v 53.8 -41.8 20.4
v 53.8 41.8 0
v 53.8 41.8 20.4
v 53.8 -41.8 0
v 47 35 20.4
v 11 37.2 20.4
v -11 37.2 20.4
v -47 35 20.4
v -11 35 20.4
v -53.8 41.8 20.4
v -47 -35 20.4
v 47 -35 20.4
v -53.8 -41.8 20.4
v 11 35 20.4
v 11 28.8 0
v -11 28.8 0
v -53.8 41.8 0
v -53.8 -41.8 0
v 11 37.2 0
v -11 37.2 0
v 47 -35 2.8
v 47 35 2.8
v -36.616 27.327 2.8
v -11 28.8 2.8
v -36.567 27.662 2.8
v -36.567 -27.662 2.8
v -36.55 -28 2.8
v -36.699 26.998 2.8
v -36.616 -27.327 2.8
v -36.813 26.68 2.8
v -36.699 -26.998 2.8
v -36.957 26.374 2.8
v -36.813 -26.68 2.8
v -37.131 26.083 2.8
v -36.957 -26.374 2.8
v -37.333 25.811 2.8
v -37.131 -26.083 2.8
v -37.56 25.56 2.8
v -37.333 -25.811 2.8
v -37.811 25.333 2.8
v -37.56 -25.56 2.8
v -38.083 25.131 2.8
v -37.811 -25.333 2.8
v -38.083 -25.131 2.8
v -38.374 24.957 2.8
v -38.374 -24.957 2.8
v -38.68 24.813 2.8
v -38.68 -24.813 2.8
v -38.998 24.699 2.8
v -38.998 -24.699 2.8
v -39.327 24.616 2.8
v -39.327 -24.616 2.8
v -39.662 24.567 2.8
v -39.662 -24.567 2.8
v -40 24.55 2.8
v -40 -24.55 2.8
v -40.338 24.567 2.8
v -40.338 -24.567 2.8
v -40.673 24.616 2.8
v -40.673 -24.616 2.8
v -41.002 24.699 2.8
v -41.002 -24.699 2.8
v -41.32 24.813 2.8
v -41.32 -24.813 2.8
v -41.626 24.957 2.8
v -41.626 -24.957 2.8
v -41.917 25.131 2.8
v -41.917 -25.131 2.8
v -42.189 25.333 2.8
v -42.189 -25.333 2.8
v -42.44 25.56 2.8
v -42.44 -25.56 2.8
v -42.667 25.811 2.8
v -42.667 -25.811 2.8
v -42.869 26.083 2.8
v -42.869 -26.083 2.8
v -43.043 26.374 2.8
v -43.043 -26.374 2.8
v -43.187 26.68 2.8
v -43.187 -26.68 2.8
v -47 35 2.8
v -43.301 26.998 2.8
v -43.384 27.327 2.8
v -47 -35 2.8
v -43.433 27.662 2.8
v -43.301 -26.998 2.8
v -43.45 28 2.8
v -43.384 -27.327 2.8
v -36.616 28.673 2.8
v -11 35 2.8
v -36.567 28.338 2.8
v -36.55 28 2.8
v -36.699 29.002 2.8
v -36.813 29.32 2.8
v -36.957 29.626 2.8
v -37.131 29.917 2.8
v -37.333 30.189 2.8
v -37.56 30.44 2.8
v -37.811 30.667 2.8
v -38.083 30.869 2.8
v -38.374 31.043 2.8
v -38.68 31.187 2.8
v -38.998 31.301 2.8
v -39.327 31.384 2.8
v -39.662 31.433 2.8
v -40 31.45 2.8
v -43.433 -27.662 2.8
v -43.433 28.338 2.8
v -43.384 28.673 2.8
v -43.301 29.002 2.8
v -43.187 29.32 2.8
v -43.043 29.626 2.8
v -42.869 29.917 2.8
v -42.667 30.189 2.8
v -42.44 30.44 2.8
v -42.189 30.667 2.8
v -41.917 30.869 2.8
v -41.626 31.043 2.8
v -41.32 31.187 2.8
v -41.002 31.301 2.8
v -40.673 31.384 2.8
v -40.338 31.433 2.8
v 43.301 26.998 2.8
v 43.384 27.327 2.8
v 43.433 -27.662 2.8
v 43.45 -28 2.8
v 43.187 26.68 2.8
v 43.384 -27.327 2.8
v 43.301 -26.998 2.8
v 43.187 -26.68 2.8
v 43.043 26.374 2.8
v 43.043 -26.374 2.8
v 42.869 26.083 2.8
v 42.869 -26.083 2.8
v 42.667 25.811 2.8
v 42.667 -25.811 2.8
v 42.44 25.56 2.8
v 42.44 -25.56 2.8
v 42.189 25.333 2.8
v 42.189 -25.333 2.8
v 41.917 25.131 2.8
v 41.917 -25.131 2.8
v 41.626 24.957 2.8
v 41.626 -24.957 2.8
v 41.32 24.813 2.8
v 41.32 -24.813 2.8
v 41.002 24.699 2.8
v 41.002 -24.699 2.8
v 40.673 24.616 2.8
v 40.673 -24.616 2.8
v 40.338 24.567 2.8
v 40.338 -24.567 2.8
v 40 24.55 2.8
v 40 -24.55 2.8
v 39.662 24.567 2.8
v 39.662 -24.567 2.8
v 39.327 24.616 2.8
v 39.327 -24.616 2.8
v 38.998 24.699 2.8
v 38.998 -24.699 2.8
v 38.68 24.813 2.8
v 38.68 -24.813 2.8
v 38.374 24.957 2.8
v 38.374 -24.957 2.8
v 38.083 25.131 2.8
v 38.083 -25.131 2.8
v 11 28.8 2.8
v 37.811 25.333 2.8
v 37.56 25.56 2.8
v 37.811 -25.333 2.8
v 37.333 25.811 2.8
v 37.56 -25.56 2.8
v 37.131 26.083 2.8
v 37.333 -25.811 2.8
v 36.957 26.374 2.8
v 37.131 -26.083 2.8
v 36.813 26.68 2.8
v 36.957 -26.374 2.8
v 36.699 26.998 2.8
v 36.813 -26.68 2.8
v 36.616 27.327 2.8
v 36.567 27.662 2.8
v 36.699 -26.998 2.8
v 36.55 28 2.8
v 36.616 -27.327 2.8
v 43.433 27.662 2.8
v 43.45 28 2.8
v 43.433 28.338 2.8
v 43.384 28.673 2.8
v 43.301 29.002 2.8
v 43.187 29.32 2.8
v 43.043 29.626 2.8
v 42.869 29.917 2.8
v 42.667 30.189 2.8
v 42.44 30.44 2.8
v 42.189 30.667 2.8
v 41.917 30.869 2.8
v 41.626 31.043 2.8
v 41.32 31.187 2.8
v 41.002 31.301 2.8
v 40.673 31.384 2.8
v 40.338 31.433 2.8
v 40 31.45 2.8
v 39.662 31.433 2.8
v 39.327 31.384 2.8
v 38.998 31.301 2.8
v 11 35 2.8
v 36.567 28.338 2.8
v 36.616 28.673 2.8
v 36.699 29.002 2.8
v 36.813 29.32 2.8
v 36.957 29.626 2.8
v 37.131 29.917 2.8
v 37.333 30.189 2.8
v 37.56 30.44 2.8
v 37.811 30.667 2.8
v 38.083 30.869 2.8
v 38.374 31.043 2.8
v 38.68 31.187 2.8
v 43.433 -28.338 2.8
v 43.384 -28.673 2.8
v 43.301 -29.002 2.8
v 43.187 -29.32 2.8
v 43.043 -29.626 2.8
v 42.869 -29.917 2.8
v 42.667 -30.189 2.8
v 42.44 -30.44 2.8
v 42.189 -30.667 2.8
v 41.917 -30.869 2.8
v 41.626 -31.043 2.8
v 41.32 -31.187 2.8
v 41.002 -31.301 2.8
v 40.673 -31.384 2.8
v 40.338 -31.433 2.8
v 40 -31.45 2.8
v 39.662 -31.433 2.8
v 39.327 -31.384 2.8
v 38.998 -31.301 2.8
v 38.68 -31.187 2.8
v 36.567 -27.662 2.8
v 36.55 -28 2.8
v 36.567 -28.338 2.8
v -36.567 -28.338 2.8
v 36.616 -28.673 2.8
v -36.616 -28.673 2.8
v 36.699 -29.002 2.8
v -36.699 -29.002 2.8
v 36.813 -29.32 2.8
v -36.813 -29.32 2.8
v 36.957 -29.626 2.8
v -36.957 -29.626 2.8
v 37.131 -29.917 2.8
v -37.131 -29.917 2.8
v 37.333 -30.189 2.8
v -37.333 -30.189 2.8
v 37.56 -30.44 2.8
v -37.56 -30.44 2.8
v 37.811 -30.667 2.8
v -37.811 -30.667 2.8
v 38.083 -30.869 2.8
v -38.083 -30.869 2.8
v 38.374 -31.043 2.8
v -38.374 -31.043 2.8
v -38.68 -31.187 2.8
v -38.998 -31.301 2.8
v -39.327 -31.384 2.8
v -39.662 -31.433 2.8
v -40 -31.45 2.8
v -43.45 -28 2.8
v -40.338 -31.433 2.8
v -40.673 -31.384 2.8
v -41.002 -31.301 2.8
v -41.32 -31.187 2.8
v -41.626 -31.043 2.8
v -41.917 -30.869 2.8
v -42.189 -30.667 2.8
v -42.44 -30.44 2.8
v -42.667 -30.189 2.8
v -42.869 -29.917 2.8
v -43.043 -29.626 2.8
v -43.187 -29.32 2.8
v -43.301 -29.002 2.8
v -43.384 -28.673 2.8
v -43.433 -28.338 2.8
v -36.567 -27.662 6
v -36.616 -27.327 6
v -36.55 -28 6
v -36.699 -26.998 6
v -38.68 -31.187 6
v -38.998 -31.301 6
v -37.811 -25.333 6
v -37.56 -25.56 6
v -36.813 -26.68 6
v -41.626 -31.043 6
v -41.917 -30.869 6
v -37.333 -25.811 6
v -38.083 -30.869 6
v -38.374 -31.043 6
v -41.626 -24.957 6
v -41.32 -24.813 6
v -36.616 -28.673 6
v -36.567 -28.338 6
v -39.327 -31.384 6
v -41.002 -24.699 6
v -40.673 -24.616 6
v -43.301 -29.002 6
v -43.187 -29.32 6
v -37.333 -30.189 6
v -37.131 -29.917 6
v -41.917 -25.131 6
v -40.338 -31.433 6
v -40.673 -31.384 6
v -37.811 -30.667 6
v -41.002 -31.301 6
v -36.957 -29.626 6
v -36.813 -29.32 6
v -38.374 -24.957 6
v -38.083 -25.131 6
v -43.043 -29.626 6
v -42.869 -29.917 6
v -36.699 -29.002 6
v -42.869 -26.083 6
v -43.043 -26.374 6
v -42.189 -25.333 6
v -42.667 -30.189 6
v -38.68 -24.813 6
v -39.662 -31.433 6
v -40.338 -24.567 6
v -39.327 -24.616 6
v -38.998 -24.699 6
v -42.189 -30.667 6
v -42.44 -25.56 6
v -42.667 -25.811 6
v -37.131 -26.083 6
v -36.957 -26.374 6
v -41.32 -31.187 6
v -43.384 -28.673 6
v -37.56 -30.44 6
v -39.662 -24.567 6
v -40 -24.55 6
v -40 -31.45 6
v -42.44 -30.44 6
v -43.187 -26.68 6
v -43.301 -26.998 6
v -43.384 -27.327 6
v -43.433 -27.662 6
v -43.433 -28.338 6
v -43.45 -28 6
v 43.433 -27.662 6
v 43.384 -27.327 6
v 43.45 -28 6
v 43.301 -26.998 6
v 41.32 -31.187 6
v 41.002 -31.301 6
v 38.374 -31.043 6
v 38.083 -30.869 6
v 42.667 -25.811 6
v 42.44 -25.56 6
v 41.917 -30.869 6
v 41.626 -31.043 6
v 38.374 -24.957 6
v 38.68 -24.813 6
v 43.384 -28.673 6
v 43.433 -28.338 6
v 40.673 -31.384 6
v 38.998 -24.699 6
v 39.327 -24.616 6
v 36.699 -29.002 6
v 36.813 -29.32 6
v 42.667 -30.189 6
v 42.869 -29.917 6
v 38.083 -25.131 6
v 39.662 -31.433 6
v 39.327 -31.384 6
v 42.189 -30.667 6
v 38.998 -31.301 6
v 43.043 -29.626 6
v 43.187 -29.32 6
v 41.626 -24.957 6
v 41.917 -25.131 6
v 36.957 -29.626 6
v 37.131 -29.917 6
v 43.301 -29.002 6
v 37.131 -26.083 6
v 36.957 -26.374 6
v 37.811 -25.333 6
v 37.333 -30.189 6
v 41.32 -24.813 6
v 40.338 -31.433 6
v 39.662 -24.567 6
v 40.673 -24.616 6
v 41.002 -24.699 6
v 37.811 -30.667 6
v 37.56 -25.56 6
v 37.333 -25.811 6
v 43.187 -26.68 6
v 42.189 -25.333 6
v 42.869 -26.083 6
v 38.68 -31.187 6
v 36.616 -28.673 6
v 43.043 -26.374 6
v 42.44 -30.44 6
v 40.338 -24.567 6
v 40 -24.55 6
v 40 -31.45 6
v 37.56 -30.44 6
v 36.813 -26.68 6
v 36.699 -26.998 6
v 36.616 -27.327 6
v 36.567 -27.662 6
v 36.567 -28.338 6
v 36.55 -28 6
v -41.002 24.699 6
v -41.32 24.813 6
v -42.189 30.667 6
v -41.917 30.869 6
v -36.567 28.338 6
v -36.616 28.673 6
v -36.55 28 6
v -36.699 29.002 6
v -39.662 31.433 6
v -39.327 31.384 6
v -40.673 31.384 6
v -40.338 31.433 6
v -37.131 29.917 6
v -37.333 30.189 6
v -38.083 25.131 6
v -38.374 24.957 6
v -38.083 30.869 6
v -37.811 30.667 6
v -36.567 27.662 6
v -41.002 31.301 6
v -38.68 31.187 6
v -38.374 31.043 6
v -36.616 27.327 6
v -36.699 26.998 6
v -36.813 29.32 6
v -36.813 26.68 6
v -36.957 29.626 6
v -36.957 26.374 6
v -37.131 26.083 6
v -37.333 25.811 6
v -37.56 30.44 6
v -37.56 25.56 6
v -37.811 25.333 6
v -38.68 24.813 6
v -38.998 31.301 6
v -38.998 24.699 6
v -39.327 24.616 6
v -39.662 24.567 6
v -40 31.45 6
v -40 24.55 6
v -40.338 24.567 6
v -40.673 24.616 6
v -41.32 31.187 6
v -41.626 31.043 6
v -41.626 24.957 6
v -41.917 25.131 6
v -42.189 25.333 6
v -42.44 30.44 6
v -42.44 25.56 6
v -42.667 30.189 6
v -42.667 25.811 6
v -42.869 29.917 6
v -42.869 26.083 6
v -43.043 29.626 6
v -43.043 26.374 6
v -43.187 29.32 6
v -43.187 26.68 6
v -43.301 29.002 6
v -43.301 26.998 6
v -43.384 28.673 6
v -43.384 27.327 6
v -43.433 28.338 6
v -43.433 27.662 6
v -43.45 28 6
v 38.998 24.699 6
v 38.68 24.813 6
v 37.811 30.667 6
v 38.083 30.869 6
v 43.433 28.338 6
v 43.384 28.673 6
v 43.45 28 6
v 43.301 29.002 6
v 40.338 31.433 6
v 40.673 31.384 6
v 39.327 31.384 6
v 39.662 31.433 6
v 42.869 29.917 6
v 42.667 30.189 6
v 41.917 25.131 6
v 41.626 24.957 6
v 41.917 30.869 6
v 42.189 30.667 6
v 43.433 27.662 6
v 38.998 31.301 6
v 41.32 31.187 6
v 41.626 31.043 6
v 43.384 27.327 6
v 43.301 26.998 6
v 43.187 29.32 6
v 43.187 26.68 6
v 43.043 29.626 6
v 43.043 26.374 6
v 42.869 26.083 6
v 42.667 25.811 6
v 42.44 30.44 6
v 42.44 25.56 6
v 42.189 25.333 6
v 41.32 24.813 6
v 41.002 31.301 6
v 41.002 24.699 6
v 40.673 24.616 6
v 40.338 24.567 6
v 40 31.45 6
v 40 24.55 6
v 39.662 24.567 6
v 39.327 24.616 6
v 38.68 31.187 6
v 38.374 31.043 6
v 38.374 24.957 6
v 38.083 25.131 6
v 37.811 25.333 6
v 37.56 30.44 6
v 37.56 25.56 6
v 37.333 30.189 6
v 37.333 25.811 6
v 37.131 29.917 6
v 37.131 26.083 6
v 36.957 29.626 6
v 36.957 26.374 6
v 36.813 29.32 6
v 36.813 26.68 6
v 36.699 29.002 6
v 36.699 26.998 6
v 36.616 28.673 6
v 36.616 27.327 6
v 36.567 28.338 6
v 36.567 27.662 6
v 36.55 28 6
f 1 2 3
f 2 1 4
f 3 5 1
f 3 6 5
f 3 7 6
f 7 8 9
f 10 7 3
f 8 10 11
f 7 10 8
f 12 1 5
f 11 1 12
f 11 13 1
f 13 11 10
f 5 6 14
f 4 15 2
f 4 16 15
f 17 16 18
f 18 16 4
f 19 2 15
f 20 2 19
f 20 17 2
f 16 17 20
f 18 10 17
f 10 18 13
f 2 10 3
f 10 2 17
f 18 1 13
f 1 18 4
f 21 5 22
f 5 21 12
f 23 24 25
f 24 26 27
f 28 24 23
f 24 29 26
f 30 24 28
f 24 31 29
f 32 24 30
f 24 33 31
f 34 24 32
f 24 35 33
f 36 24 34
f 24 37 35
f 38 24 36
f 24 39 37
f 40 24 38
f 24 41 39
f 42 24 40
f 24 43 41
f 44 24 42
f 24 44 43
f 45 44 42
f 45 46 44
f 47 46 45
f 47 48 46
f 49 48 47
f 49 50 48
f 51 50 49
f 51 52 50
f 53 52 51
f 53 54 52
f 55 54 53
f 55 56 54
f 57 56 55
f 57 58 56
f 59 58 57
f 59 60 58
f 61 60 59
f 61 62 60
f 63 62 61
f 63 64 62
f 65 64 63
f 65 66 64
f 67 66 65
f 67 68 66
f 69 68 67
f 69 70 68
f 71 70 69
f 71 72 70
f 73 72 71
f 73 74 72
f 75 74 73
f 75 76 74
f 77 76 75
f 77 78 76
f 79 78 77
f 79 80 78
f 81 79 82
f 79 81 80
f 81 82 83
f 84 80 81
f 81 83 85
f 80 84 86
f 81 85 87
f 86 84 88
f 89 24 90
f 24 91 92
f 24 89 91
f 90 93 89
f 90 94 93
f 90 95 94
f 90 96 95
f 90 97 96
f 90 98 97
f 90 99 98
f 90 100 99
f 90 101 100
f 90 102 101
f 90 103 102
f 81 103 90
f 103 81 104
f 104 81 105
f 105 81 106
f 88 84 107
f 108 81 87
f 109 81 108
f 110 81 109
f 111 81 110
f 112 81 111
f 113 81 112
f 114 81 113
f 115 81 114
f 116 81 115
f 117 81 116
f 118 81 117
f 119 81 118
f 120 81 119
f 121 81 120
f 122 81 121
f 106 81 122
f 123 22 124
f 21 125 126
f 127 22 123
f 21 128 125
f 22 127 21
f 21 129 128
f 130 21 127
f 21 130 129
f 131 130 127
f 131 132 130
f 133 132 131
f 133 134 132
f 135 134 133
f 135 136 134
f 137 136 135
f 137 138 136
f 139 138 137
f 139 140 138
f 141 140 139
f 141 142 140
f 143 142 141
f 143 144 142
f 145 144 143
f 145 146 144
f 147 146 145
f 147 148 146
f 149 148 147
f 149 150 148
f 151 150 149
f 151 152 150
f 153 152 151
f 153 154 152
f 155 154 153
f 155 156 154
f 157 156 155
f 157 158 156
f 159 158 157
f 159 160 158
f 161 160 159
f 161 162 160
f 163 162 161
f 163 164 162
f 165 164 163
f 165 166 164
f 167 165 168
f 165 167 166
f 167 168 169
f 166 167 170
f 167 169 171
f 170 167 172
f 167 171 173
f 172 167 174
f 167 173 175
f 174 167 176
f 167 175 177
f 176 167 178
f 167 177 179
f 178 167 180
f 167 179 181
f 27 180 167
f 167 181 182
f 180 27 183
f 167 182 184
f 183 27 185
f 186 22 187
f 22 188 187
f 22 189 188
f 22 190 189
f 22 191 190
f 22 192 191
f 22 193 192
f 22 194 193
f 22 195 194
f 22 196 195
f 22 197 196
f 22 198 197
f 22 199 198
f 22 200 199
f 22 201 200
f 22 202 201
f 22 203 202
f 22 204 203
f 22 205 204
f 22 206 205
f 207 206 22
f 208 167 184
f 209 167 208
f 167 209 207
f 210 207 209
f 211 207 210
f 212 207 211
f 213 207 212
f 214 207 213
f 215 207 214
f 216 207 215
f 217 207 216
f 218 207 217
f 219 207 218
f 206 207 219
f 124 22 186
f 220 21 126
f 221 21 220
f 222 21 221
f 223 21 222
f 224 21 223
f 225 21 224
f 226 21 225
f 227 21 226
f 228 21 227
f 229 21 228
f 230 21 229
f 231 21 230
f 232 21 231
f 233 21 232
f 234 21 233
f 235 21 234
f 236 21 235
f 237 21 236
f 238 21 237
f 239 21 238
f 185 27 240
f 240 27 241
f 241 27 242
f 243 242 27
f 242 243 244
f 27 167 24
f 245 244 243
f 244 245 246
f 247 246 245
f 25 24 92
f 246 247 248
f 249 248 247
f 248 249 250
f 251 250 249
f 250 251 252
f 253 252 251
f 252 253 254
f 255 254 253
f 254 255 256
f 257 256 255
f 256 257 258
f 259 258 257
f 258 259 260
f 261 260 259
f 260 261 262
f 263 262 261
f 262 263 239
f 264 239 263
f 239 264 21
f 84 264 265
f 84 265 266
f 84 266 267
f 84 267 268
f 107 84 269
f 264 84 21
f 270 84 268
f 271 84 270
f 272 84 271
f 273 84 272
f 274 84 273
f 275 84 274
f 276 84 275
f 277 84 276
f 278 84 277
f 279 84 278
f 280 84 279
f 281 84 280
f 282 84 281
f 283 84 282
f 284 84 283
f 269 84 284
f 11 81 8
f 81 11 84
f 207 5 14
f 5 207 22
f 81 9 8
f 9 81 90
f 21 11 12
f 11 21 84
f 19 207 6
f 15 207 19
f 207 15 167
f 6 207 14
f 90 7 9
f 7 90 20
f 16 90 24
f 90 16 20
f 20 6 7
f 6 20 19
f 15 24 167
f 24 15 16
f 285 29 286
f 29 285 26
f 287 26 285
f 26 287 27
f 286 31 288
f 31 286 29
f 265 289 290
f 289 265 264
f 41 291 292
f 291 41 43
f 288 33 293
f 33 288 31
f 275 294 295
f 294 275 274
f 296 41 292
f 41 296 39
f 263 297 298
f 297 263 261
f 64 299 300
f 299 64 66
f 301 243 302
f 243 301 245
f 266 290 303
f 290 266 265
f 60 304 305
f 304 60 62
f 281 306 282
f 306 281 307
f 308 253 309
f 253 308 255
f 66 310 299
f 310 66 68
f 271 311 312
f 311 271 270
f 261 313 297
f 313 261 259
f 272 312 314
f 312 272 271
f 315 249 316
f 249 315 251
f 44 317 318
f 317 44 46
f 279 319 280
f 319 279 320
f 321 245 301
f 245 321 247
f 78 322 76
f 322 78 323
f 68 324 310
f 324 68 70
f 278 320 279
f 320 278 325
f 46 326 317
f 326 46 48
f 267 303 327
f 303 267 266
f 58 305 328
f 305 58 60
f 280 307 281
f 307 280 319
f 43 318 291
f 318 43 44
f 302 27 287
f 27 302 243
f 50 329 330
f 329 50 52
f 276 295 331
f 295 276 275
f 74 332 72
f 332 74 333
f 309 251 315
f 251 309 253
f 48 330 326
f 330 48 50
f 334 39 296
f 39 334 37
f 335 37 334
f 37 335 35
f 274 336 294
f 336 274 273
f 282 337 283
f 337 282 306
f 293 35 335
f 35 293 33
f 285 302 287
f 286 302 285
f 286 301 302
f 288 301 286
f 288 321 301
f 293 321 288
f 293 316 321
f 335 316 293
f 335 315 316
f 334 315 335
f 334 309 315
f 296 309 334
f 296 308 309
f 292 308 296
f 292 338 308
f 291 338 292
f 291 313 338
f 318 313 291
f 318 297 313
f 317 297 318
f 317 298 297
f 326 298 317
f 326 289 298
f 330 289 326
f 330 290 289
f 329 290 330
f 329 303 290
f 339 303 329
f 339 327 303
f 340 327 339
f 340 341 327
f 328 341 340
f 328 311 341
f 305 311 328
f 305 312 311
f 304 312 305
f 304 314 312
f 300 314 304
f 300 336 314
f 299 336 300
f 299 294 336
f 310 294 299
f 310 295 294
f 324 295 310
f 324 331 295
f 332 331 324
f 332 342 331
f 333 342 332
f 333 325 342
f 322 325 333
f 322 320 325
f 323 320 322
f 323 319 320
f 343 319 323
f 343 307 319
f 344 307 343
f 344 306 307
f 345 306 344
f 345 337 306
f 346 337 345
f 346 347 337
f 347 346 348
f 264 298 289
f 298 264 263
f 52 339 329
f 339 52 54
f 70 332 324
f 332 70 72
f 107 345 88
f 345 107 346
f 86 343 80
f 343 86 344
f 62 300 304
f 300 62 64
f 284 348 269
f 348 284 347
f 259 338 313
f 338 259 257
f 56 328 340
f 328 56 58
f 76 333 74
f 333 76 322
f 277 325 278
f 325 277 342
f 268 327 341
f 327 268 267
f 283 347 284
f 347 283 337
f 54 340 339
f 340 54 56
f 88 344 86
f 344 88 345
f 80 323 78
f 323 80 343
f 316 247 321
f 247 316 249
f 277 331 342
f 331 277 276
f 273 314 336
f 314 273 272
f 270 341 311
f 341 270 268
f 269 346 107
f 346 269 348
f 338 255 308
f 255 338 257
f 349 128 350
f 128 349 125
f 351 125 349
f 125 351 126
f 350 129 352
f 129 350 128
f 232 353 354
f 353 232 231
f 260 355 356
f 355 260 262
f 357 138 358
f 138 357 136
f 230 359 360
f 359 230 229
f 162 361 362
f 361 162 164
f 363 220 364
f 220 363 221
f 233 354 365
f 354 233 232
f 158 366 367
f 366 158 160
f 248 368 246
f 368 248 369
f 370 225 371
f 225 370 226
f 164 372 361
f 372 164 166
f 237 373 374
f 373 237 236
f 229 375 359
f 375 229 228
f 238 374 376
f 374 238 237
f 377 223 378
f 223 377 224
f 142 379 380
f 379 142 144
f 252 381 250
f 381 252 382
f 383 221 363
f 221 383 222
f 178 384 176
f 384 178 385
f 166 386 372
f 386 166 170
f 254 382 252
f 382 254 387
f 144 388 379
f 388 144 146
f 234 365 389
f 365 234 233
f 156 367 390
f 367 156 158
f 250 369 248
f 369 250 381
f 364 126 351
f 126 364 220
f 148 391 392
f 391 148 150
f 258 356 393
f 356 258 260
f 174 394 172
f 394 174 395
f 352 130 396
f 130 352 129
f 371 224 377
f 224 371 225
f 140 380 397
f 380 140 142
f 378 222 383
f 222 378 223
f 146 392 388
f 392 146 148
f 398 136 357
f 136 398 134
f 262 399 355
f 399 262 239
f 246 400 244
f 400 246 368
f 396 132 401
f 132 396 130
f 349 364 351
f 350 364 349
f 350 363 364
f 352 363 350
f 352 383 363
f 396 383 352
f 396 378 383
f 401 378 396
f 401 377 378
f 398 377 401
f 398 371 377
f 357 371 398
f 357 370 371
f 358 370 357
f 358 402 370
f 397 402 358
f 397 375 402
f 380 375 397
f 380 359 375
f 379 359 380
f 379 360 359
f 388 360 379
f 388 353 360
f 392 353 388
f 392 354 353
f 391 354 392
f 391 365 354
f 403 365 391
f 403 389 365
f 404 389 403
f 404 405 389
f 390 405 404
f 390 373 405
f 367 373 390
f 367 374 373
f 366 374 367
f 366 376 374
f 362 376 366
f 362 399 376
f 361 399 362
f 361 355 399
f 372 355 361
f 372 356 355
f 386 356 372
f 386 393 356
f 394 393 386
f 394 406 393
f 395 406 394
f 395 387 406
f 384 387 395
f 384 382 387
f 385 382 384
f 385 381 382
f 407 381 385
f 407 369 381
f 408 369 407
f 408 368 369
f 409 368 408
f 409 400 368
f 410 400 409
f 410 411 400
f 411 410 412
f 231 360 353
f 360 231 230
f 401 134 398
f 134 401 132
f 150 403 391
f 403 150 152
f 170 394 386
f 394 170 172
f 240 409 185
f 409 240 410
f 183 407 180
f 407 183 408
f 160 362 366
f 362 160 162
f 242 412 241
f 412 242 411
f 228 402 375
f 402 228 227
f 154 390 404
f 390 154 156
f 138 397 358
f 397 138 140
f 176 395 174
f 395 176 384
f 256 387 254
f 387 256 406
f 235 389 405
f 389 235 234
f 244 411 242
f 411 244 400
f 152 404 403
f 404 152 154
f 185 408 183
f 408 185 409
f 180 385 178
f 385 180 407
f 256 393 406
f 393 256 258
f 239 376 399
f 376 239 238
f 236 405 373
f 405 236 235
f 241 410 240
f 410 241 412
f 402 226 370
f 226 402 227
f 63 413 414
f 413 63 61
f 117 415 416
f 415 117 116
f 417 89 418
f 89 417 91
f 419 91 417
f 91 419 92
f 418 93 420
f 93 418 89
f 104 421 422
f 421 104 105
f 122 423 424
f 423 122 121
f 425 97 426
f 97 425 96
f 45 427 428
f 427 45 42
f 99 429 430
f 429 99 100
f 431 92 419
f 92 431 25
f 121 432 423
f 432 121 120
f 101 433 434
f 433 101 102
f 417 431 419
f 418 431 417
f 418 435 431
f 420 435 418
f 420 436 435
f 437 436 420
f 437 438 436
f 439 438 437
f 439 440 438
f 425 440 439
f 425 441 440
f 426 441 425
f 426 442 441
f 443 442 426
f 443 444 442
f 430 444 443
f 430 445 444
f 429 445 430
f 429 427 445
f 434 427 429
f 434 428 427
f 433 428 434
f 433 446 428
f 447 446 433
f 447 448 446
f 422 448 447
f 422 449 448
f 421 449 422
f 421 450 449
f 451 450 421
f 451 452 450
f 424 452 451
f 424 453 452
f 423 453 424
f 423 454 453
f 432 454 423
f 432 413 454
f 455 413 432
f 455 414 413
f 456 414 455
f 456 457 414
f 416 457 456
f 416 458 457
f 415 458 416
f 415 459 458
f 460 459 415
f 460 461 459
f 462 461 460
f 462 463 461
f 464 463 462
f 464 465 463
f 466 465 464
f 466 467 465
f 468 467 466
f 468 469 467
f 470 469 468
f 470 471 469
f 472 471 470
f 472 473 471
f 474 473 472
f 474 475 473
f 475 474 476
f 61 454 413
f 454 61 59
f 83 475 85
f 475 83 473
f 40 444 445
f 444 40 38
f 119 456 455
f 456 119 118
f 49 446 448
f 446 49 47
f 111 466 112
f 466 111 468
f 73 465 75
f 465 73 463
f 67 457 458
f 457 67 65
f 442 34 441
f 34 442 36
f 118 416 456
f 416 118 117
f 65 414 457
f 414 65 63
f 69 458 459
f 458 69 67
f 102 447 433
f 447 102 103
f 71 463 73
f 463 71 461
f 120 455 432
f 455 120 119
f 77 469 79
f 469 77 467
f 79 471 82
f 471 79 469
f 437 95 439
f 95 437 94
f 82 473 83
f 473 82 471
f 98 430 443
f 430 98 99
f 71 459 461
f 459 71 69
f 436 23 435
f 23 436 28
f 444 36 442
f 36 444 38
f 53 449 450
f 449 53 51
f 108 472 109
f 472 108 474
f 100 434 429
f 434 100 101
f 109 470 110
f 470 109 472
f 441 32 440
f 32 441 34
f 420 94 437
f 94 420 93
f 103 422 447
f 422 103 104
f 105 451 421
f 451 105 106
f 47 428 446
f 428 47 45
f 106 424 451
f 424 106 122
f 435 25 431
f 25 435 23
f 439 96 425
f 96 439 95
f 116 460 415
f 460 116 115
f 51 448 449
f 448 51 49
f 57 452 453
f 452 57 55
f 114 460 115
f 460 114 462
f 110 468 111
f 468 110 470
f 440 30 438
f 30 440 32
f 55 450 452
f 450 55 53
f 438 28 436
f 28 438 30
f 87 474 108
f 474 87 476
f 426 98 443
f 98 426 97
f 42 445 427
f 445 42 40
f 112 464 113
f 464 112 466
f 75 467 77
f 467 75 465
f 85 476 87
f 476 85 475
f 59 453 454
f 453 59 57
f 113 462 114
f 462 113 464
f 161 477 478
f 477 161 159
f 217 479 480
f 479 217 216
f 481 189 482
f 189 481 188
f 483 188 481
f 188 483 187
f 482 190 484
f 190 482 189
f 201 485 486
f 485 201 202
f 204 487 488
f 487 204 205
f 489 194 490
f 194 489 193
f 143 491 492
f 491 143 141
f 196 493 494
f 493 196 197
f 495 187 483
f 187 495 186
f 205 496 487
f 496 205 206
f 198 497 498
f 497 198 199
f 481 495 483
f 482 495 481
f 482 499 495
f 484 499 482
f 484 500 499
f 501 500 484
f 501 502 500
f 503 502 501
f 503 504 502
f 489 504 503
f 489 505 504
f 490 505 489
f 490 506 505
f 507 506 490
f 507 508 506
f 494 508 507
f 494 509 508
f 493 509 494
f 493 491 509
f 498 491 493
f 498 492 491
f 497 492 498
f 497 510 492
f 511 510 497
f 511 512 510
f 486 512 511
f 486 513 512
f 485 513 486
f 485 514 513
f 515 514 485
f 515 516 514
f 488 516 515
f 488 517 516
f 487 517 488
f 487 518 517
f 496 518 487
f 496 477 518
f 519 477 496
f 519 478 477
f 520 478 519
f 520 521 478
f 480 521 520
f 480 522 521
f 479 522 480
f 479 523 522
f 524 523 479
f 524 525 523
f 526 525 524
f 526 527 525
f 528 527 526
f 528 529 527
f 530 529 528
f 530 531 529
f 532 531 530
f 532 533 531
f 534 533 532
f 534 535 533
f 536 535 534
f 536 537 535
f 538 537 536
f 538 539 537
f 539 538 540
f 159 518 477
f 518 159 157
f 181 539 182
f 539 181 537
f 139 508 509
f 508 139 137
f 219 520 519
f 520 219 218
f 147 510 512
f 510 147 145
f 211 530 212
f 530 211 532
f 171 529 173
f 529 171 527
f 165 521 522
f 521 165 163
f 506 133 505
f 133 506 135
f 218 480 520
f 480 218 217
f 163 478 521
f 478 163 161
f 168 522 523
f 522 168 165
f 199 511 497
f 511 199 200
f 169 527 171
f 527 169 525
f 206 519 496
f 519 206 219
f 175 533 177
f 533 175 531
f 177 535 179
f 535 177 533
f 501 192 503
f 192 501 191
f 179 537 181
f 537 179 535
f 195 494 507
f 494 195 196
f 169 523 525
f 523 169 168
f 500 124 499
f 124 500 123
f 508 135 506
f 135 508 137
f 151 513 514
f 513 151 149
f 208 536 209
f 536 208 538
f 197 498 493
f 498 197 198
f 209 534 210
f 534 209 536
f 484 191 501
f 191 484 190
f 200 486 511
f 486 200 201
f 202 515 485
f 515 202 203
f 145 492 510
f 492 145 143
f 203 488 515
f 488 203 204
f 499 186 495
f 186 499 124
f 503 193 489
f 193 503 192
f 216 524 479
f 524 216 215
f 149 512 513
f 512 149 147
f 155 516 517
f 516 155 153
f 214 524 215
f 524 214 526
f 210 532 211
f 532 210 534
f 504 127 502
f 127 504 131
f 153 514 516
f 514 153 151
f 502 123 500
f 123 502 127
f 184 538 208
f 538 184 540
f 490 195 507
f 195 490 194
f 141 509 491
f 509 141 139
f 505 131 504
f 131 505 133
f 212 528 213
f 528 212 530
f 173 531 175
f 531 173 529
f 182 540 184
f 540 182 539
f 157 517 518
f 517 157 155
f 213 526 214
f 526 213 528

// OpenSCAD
// file: 01_kicad_parameters.scad
// KiCad-generated OpenSCAD parameter handoff.
// Source: 01_kicad_mechanical_map.csv and 01_kicad_board.kicad_pcb.
$fn = 64;
board = [94.000, 70.000, 1.600];
enclosure = [107.600, 83.600, 20.400];
wall = 2.800;
lid_clearance = 5.000;

// [reference, kind, x_mm, y_mm, height_mm, keepout_radius_mm, role]
mechanical_features = [
  ["TP1", "POGO_TARGET", -22.000, -12.000, 0.200, 2.500, "access_bore"],
  ["TP2", "POGO_TARGET", -6.000, -12.000, 0.200, 2.500, "access_bore"],
  ["TP3", "POGO_TARGET", 10.000, -12.000, 0.200, 2.500, "access_bore"],
  ["TP4", "POGO_TARGET", 26.000, -12.000, 0.200, 2.500, "access_bore"],
  ["J1", "EDGE_CONN", 0.000, 33.000, 4.400, 11.000, "connector_window"],
  ["MH1", "MOUNTING_HOLE", -40.000, -28.000, 0.000, 1.500, "standoff_axis"],
  ["MH2", "MOUNTING_HOLE", 40.000, -28.000, 0.000, 1.500, "standoff_axis"],
  ["MH3", "MOUNTING_HOLE", -40.000, 28.000, 0.000, 1.500, "standoff_axis"],
  ["MH4", "MOUNTING_HOLE", 40.000, 28.000, 0.000, 1.500, "standoff_axis"],
];

standoff_axes = [for (f = mechanical_features) if (f[6] == "standoff_axis") [f[2], f[3], f[5], f[0]]];
interface_features = [for (f = mechanical_features) if (f[6] == "connector_window" || f[6] == "access_bore" || f[6] == "antenna_keepout") [f[2], f[3], f[5], f[0], f[6]]];
// main file
// Task 05: Pogo-pin bed adapter with board-derived pin field
// OpenSCAD stage consumes the KiCad-generated 01_kicad_parameters.scad handoff.
include <01_kicad_parameters.scad>;

module standoff(x, y) {
  translate([x, y, board[2]]) cylinder(d=6.900, h=wall + board[2]);
}
module keepout_window(x, y, r) {
  translate([x, y, enclosure[2]/2]) cube([2*r, wall*3, enclosure[2]], center=true);
}
module enclosure_shell() {
  difference() {
    translate([-enclosure[0]/2, -enclosure[1]/2, 0]) cube(enclosure);
    translate([-board[0]/2, -board[1]/2, wall]) cube([board[0], board[1], enclosure[2]]);
    // J1 EDGE_CONN side/service keepout
    keepout_window(0.000, 33.000, 11.000);
  }
}
// MH1 copied from KiCad at (-40.000, -28.000)
// MH2 copied from KiCad at (40.000, -28.000)
// MH3 copied from KiCad at (-40.000, 28.000)
// MH4 copied from KiCad at (40.000, 28.000)
union() {
  enclosure_shell();
  standoff(-40.000, -28.000);
  standoff(40.000, -28.000);
  standoff(-40.000, 28.000);
  standoff(40.000, 28.000);
}
